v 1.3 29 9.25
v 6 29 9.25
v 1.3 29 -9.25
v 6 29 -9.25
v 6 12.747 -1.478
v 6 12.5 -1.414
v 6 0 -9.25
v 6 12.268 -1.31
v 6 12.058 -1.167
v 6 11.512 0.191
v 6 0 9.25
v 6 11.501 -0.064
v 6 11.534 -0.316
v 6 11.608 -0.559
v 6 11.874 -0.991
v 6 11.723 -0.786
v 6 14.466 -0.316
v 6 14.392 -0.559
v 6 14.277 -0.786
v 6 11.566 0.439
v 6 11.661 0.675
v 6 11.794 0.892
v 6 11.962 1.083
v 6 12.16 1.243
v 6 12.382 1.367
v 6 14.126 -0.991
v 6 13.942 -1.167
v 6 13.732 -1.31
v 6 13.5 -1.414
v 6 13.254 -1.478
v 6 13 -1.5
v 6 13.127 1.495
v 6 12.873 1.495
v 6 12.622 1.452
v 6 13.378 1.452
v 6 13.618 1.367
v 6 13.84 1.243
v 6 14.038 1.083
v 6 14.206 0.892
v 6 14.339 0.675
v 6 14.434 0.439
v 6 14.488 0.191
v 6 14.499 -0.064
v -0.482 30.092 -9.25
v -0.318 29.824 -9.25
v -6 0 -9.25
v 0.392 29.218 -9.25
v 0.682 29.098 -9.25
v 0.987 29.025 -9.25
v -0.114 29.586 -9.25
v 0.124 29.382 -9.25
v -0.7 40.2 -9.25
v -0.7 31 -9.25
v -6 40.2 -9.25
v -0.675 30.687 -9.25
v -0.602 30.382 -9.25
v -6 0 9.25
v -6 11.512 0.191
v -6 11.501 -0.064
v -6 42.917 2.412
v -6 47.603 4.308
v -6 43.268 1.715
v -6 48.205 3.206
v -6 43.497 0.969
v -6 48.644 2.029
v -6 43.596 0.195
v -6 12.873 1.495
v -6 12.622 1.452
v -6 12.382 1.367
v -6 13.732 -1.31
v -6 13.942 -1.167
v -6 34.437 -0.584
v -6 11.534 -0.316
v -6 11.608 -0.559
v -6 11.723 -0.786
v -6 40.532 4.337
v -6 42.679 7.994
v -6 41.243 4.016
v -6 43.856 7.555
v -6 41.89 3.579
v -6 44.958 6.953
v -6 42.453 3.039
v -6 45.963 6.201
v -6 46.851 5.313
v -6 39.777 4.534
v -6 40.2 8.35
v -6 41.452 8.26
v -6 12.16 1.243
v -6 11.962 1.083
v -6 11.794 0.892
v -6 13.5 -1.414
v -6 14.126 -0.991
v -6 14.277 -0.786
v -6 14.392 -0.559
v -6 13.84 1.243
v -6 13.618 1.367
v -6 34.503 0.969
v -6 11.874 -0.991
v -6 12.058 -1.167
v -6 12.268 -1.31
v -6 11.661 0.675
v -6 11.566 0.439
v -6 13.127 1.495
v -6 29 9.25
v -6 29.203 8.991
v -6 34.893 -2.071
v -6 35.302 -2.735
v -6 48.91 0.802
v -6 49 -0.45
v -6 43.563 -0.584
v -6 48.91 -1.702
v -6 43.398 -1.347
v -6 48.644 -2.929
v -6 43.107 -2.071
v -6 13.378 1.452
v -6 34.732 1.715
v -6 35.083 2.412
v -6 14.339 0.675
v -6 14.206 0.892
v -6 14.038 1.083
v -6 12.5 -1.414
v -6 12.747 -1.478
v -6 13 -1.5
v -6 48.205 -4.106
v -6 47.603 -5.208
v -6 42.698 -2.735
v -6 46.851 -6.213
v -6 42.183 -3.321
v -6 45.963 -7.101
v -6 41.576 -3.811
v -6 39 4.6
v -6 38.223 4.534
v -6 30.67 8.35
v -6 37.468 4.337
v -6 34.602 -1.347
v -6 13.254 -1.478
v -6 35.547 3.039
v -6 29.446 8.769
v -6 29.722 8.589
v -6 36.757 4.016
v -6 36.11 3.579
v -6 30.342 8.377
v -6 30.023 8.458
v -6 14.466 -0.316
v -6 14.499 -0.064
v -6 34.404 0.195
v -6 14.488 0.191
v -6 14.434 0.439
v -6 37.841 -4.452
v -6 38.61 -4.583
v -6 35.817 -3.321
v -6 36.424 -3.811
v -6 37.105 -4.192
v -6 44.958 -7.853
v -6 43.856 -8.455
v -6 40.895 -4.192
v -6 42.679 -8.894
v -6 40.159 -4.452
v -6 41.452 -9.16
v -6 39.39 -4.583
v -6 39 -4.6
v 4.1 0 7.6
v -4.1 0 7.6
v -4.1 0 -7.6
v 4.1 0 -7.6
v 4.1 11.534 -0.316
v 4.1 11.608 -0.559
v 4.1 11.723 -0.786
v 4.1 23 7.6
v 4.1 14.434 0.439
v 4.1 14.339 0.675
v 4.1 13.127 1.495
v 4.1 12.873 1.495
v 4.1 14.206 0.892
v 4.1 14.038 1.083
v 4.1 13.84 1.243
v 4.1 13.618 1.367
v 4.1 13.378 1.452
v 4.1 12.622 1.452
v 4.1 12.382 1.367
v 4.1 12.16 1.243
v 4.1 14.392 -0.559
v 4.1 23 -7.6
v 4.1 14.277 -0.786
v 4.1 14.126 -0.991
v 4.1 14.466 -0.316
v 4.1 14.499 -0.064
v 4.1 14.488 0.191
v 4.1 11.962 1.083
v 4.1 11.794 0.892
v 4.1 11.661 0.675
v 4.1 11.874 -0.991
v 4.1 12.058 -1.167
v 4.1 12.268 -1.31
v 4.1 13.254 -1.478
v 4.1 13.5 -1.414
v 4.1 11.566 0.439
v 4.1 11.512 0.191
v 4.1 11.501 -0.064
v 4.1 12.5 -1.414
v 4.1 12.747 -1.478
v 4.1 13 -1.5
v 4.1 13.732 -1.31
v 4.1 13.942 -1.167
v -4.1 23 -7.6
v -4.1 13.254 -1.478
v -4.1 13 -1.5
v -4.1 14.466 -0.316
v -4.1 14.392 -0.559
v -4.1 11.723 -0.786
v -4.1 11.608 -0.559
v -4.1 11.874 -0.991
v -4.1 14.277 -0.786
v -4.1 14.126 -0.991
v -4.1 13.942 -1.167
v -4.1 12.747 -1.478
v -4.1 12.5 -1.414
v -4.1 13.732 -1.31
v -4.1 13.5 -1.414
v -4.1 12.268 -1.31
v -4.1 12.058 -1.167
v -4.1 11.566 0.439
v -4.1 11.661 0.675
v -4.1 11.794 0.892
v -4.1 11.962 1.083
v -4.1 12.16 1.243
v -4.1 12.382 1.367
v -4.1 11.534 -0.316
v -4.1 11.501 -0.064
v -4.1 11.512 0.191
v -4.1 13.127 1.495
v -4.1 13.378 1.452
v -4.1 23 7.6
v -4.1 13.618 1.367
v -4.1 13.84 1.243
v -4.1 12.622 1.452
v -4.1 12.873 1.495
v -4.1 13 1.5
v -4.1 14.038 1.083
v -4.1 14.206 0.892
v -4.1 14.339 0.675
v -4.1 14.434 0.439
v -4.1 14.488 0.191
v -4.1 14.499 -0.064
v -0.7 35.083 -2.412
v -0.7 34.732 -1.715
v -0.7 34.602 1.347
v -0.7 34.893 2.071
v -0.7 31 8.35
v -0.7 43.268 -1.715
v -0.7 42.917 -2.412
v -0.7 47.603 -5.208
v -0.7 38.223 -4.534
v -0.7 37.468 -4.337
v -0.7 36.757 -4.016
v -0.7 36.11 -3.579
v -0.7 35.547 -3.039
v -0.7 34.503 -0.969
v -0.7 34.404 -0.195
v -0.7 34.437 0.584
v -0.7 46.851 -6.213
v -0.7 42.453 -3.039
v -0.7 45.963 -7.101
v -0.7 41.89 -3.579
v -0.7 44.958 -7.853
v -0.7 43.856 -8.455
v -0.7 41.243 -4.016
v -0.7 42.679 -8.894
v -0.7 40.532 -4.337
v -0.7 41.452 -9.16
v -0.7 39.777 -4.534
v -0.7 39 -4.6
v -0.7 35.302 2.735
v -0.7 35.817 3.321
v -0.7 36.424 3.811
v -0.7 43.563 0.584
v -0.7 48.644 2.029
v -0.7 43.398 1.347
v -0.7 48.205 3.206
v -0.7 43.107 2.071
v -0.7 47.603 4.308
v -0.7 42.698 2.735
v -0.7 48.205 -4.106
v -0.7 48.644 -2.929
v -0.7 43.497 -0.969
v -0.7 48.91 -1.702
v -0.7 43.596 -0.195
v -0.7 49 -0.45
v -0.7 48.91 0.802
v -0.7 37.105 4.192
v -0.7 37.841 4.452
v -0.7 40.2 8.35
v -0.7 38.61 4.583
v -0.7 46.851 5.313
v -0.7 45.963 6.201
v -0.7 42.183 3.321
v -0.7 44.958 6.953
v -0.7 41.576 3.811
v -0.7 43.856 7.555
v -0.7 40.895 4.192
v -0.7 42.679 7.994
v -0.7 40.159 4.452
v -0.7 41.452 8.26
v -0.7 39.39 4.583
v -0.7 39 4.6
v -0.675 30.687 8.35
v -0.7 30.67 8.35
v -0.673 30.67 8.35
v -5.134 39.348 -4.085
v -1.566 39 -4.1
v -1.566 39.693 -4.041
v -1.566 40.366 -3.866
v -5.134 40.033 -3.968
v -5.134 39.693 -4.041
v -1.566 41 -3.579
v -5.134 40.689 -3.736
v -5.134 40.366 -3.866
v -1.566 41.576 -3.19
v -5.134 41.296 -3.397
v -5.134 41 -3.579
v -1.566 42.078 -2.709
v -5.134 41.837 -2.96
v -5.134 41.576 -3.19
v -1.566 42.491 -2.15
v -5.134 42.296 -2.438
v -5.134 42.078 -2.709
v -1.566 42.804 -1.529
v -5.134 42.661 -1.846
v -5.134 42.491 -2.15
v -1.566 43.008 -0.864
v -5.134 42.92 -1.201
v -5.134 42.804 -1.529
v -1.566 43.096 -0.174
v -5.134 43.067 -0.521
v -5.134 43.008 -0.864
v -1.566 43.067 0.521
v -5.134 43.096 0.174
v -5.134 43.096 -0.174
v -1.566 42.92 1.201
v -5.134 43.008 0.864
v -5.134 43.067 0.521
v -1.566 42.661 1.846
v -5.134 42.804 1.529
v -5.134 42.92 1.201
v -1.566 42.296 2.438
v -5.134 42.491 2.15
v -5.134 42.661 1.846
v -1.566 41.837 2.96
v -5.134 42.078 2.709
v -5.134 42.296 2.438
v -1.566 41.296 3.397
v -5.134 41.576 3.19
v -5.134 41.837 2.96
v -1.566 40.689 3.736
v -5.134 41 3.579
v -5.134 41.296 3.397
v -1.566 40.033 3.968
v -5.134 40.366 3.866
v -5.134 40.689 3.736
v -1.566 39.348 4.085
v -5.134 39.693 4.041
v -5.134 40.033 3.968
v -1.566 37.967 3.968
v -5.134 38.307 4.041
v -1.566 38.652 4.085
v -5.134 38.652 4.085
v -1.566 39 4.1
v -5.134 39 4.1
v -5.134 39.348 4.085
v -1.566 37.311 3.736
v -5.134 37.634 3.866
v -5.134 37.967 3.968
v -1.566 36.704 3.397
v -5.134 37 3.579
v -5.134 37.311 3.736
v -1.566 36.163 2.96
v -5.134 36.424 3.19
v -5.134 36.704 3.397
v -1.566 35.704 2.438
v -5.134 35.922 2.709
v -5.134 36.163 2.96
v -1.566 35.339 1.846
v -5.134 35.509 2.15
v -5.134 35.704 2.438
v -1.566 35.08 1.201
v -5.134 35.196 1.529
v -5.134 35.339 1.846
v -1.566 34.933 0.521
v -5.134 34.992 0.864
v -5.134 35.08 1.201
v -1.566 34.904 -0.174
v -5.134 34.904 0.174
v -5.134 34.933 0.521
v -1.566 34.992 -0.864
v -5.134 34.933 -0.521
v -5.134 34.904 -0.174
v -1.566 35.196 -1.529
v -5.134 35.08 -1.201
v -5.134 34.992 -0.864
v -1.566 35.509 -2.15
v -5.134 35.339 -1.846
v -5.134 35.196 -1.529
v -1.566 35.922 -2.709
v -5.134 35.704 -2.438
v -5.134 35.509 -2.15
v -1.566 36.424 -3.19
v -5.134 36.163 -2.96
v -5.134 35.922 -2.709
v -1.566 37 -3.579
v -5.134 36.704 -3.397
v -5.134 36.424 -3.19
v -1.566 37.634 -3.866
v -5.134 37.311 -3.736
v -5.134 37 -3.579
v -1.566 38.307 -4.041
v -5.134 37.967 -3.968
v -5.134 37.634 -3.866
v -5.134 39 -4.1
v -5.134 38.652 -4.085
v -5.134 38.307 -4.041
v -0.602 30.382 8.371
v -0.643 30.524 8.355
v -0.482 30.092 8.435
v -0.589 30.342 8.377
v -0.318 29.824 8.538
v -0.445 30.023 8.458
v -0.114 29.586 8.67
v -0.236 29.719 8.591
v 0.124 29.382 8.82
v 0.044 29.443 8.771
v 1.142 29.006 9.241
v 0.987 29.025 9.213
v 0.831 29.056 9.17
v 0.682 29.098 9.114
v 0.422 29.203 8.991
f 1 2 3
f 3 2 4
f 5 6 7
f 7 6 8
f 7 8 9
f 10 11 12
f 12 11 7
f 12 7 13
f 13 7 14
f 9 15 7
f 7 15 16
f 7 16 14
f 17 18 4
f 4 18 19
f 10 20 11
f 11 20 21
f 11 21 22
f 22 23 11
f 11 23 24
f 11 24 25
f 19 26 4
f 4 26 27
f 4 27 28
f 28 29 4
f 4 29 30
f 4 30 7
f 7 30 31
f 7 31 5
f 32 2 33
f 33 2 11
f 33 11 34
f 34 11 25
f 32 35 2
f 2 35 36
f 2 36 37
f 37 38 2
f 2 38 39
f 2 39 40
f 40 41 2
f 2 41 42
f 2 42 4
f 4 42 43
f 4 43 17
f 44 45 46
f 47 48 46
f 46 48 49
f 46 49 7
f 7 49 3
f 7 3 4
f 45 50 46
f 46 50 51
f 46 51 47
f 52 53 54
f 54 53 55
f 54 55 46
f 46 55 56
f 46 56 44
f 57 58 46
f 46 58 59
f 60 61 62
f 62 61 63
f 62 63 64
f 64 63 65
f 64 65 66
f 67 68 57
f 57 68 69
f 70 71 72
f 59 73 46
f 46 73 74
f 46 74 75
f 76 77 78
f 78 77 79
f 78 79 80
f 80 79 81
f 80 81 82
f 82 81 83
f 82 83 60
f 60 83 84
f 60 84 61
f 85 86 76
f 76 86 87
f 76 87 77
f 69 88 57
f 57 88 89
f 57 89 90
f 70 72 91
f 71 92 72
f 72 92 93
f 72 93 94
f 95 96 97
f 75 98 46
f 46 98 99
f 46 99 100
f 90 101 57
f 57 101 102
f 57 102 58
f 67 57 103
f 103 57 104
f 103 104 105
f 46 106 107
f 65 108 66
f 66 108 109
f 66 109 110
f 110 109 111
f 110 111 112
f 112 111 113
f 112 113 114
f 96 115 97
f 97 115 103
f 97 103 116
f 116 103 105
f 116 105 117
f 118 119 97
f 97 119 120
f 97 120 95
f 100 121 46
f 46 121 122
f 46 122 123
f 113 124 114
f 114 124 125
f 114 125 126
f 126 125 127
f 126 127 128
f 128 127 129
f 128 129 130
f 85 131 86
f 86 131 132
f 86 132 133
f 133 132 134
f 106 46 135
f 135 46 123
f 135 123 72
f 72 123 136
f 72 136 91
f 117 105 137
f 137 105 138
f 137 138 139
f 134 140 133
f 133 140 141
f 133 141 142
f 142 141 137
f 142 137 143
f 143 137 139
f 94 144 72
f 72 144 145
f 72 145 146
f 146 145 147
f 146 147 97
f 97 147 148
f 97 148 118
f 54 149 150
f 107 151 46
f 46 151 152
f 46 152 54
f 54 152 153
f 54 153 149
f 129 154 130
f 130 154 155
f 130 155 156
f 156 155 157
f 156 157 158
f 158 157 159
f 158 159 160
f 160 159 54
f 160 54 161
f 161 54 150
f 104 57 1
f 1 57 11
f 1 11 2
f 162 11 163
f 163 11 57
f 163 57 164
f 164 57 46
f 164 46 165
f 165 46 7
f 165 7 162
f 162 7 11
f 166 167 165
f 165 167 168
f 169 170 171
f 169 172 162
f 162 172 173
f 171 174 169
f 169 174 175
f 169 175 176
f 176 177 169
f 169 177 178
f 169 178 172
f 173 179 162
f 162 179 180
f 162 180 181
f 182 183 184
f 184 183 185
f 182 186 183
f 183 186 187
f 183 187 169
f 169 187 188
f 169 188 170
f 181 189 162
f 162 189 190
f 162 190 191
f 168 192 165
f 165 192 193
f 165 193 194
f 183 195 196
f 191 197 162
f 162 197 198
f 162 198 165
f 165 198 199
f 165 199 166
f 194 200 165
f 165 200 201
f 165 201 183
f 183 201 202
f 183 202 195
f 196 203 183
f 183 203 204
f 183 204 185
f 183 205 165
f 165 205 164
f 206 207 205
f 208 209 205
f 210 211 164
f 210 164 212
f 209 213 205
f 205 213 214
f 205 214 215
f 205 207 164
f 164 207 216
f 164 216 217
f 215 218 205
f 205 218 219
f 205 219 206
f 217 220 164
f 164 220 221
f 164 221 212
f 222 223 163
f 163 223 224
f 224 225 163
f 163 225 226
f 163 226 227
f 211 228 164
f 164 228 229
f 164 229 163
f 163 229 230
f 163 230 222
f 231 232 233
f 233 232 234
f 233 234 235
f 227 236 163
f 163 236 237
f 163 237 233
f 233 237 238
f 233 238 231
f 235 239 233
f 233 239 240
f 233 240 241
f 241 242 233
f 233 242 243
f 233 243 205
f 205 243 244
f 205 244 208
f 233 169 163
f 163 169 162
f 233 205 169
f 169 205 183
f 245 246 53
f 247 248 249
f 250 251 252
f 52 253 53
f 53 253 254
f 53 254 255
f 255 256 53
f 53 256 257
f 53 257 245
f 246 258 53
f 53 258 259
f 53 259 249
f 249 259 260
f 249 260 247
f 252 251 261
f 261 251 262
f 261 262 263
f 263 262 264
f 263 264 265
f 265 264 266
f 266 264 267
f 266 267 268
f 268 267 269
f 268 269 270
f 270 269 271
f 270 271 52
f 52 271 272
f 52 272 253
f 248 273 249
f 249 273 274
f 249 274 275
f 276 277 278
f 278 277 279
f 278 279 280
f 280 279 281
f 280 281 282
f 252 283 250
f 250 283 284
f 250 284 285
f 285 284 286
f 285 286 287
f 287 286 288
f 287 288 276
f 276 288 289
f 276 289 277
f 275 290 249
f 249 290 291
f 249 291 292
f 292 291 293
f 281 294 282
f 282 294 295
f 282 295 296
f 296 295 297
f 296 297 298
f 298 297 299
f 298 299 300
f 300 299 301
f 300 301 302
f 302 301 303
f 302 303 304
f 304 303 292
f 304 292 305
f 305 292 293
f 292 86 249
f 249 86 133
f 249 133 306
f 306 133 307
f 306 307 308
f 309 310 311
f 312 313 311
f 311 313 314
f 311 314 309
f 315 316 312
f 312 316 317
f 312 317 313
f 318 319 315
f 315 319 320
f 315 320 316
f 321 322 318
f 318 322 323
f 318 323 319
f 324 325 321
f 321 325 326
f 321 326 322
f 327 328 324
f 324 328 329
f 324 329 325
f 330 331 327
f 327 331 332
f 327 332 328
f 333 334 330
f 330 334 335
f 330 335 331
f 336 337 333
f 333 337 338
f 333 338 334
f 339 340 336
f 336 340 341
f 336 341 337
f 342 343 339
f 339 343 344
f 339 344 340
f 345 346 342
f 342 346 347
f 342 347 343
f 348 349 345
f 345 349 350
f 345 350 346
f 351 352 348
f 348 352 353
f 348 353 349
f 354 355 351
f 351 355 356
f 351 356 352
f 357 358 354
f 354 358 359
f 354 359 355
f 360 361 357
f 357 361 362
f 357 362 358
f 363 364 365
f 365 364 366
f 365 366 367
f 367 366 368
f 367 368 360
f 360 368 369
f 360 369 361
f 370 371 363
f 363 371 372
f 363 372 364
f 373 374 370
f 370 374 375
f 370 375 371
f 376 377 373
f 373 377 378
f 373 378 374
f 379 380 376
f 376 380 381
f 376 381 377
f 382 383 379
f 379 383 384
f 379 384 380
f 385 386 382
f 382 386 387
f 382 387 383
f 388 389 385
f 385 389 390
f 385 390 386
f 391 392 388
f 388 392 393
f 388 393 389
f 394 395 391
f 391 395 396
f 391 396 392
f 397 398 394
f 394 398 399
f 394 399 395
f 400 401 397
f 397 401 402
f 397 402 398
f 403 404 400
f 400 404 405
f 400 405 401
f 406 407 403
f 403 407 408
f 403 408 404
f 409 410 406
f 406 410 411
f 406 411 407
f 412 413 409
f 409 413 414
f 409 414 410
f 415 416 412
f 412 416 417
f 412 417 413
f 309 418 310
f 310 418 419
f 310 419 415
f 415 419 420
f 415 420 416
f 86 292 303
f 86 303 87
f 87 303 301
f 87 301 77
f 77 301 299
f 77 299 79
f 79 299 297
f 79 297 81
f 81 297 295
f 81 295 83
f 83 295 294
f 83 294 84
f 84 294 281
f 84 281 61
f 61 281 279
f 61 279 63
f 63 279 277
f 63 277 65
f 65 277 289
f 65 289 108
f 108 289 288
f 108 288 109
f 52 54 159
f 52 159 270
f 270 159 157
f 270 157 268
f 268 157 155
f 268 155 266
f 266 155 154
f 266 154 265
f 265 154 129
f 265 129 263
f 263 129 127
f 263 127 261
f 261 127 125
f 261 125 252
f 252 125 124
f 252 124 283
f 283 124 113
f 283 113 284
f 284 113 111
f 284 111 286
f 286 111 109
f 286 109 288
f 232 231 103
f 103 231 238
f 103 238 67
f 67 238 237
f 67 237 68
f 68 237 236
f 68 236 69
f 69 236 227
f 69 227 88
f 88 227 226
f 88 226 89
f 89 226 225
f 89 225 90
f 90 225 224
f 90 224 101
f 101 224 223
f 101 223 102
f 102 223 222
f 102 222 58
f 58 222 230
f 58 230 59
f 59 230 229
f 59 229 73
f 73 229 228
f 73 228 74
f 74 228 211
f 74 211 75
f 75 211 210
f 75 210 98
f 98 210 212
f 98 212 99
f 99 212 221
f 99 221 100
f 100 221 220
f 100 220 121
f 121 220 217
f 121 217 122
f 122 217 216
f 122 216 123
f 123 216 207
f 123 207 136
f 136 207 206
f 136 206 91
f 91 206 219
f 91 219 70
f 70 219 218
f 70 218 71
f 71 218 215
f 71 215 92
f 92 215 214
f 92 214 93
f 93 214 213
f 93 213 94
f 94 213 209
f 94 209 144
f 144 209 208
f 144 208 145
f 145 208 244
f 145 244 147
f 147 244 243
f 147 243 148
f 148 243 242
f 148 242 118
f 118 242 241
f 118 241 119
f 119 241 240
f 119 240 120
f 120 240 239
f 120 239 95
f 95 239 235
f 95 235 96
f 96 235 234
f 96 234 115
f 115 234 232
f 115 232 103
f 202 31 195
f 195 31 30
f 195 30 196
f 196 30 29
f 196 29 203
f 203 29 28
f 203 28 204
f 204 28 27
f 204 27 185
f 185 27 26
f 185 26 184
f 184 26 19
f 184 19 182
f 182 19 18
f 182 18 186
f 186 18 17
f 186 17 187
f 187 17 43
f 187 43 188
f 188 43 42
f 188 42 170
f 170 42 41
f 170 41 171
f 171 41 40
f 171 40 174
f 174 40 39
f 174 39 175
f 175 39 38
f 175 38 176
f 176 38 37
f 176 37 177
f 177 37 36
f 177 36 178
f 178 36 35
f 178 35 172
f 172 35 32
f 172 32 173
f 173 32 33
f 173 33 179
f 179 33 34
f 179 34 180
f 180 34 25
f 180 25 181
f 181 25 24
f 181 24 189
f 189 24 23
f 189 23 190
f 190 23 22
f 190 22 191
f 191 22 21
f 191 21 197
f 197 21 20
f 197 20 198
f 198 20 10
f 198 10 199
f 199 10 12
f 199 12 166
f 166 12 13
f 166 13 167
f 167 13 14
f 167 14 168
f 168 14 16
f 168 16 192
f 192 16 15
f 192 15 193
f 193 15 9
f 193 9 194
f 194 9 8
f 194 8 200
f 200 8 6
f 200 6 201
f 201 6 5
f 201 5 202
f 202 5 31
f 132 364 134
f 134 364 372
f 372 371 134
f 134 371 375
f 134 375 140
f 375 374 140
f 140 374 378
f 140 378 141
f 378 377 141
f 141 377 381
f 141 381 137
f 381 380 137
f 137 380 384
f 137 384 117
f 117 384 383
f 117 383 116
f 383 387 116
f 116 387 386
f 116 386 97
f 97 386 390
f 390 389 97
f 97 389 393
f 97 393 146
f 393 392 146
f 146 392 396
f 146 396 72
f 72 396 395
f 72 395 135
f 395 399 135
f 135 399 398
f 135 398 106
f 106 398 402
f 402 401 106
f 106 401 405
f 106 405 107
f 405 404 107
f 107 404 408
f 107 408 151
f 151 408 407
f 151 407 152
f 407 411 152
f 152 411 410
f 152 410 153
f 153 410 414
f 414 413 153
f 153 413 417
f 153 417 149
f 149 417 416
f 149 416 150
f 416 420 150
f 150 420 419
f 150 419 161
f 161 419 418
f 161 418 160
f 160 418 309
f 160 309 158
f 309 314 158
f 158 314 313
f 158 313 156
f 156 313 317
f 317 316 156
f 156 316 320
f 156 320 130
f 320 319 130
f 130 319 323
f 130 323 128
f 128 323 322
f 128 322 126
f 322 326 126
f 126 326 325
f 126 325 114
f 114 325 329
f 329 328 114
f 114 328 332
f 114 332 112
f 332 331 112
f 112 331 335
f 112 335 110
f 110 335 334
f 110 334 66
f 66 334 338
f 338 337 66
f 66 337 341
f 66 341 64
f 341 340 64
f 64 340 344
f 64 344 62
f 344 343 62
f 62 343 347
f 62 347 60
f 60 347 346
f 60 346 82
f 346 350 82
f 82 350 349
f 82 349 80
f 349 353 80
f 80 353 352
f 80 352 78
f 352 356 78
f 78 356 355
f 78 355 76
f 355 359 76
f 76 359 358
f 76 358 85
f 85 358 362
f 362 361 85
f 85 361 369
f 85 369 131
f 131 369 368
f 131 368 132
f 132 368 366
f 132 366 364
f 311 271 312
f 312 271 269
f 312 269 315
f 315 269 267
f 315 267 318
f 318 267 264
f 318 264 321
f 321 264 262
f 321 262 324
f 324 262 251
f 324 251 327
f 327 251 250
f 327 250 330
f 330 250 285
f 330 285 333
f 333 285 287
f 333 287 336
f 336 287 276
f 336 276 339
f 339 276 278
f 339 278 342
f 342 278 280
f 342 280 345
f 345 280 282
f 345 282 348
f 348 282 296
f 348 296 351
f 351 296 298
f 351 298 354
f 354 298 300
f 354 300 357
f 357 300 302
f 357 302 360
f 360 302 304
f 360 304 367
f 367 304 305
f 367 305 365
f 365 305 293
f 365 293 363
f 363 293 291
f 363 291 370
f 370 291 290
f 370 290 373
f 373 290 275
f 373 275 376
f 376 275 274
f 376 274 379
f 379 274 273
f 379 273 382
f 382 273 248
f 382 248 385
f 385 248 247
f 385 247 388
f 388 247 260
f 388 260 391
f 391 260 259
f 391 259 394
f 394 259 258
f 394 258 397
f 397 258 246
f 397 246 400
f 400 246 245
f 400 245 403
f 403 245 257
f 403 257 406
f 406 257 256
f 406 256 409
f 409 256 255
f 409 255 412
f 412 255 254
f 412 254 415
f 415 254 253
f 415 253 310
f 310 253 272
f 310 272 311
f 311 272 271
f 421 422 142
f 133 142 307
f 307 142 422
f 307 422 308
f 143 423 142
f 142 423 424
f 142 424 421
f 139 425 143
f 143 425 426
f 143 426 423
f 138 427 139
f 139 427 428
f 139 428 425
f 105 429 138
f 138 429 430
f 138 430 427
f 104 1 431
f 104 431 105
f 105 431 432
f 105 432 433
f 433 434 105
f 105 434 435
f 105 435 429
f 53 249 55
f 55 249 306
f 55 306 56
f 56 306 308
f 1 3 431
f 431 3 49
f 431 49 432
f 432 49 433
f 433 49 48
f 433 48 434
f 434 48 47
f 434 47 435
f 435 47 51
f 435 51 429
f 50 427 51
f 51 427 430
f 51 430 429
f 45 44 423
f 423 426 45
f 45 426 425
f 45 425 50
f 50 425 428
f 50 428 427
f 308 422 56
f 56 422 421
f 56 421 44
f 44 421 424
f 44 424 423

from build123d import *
from OCP.BRepFilletAPI import BRepFilletAPI_MakeChamfer

# Parameters (mm, degrees)
SKETCH1_W           = 12
SKETCH1_H           = 18.5
BOSS_EXTRUDE1_DEPTH = 29
SKETCH2_W           = 8.2
SKETCH2_H           = 15.2
CUT_EXTRUDE1_DEPTH  = 23
SKETCH4_W           = 5.3
SKETCH4_H           = 17.6
BOSS_EXTRUDE2_DEPTH = 20
CUT_EXTRUDE2_REACH  = 52.314
SKETCH5_R           = 4.1
FILLET1_R           = 8.8
SKETCH6_R           = 1.5
CUT_EXTRUDE3_DEPTH  = 52.289009544
CHAMFER1_SIZE       = 0.5
CHAMFER1_SIZE2      = 0.866025404
FILLET6_R           = 2


# Some blends are built 0.0001 mm under size
with BuildPart() as part:
    # Sketch1 → Boss-Extrude1 (new body)
    with BuildSketch(Plane(origin=(0, 0, 0), x_dir=(1, 0, 0), z_dir=(0, 1, 0))):
        Rectangle(SKETCH1_W, SKETCH1_H)
    extrude(amount=BOSS_EXTRUDE1_DEPTH)

    # Sketch2 → Cut-Extrude1 (cut)
    with BuildSketch(Plane.XZ):
        Rectangle(SKETCH2_W, SKETCH2_H)
    extrude(amount=-CUT_EXTRUDE1_DEPTH, mode=Mode.SUBTRACT)

    # Sketch4 → Boss-Extrude2 (add)
    with BuildSketch(Plane(origin=(0, 29, 0), x_dir=(1, 0, 0), z_dir=(0, 1, 0))):
        with Locations((-3.35, 0.45)):
            Rectangle(SKETCH4_W, SKETCH4_H)
    extrude(amount=BOSS_EXTRUDE2_DEPTH)

    # Sketch5 → Cut-Extrude2 (cut, up to next)
    with BuildSketch(Plane(origin=(-0.7, 0, 0), x_dir=(0, 0, -1), z_dir=(1, 0, 0)), mode=Mode.PRIVATE) as cut_extrude2_sk1:
        with Locations((0, 39)):
            Circle(SKETCH5_R)
    cut_extrude2_tool1 = extrude(cut_extrude2_sk1.sketch, amount=-CUT_EXTRUDE2_REACH, mode=Mode.PRIVATE) & part.part
    add(cut_extrude2_tool1.solids().sort_by_distance((-0.7, 39, 0))[0], mode=Mode.SUBTRACT)

    # Fillet1
    fillet1_edges = [part.edges().sort_by_distance(p)[0] for p in [
        (-3.35, 49, -9.25),
        (-3.35, 49, 8.35),
    ]]
    fillet(fillet1_edges, radius=FILLET1_R - 0.0001)  # a hair under: the kernel refuses the full size

    # Sketch6 → Cut-Extrude3 (cut, through all)
    with BuildSketch(Plane(origin=(6, 0, 0), x_dir=(0, 0, -1), z_dir=(1, 0, 0))):
        with Locations((0, 13)):
            Circle(SKETCH6_R)
    extrude(amount=-CUT_EXTRUDE3_DEPTH, mode=Mode.SUBTRACT)

    # Chamfer1: one chamfer whose edges measure the first distance from different faces: ONE call of the kernel's chamfer builder (chamfer() names one face for all edges)
    chamfer1_edges_1 = [part.edges().sort_by_distance(p)[0] for p in [
        (-0.7, 39, 4.1),
    ]]
    chamfer1_side_1 = [part.faces().sort_by_distance(p)[0] for p in [
        (-0.7, 34.60005, 8.083586787),
    ]]
    chamfer1_edges_2 = [part.edges().sort_by_distance(p)[0] for p in [
        (-6, 39, 4.1),
    ]]
    chamfer1_side_2 = [part.faces().sort_by_distance(p)[0] for p in [
        (-6, 22.369672876, -0.180344797),
    ]]
    chamfer1 = BRepFilletAPI_MakeChamfer(part.part.solid().wrapped)
    for e in chamfer1_edges_1:
        chamfer1.Add(CHAMFER1_SIZE, CHAMFER1_SIZE2, e.wrapped, chamfer1_side_1[0].wrapped)  # the first distance lies on this face
    for e in chamfer1_edges_2:
        chamfer1.Add(CHAMFER1_SIZE, CHAMFER1_SIZE2, e.wrapped, chamfer1_side_2[0].wrapped)  # the first distance lies on this face
    add(Compound.cast(chamfer1.Shape()), mode=Mode.REPLACE)

    # Fillet6
    # the kernel refuses this fillet: 2 mm, written as the material it adds along each edge
    with BuildSketch(Plane(origin=(-0.7, 29, 8.35), x_dir=(1, 0, 0), z_dir=(0, 0, -1))) as fillet6_piece_1:
        with BuildLine():
            CenterArc((FILLET6_R, -FILLET6_R), FILLET6_R, 90, 90)
            Line((0, -FILLET6_R), (-FILLET6_R * 0.02, -FILLET6_R))
            Line((-FILLET6_R * 0.02, -FILLET6_R), (-FILLET6_R * 0.02, FILLET6_R * 0.02))
            Line((-FILLET6_R * 0.02, FILLET6_R * 0.02), (FILLET6_R, FILLET6_R * 0.02))
            Line((FILLET6_R, FILLET6_R * 0.02), (FILLET6_R, 0))
        make_face()
    extrude(amount=17.6)
    with BuildSketch(Plane(origin=(-6, 29, 8.35), x_dir=(0, 1.5316143415257847e-12, 1.0), z_dir=(1, 0, 0))) as fillet6_piece_2:
        with BuildLine():
            CenterArc((2, -1.670329309), FILLET6_R, 123.367012969, 56.632987031)
            Line((0, -1.670329309), (-0.04, -1.670329309))
            Line((-0.04, -1.670329309), (-0.04, 0))
            Line((-0.04, 0), (0, 0.04))
            ThreePointArc((0, 0.04), (0.45, 0.04), (0.878, 0.033406586))
            Line((0.878, 0.033406586), (0.9, 0))
        make_face()
    extrude(amount=5.3)
    with BuildSketch(Plane(origin=(-6, 29, 8.35), x_dir=(0, 1.5316143415257847e-12, 1.0), z_dir=(1, 0, 0))) as fillet6_piece_3a_section:
        with BuildLine():
            CenterArc((2, -1.670329309), FILLET6_R, 123.367012969, 56.632987031)
            Line((0, -1.670329309), (-0.04, -1.670329309))
            Line((-0.04, -1.670329309), (-0.04, 0))
            Line((-0.04, 0), (0, 0.04))
            ThreePointArc((0, 0.04), (0.45, 0.04), (0.878, 0.033406586))
            Line((0.878, 0.033406586), (0.9, 0))
        make_face()
    fillet6_piece_3a = extrude(amount=9.475823272, mode=Mode.PRIVATE)
    fillet6_piece_3a = split(fillet6_piece_3a, bisect_by=Plane(origin=(-0.7, 29.423174299, 8.582221018), z_dir=(1, 0, 0)), keep=Keep.TOP, mode=Mode.PRIVATE)
    with BuildSketch(Plane(origin=(-0.7, 29, 13.35), x_dir=(1, 0, 0), z_dir=(0, 0, -1))) as fillet6_piece_3b_section:
        with BuildLine():
            CenterArc((FILLET6_R, -FILLET6_R), FILLET6_R, 90, 90)
            Line((0, -FILLET6_R), (-FILLET6_R * 0.02, -FILLET6_R))
            Line((-FILLET6_R * 0.02, -FILLET6_R), (-FILLET6_R * 0.02, FILLET6_R * 0.02))
            Line((-FILLET6_R * 0.02, FILLET6_R * 0.02), (FILLET6_R, FILLET6_R * 0.02))
            Line((FILLET6_R, FILLET6_R * 0.02), (FILLET6_R, 0))
        make_face()
    fillet6_piece_3b = extrude(amount=22.6, mode=Mode.PRIVATE)
    fillet6_piece_3b = split(fillet6_piece_3b, bisect_by=Plane(origin=(-0.247209771, 29.452790229, 9.25), z_dir=(0, 0, -1)), keep=Keep.TOP, mode=Mode.PRIVATE)
    fillet6_piece_3b = split(fillet6_piece_3b, bisect_by=Plane(origin=(-0.247209771, 29.452790229, 8.35), z_dir=(0, 0, 1)), keep=Keep.TOP, mode=Mode.PRIVATE)
    fillet6_piece_3 = fillet6_piece_3a & fillet6_piece_3b
    add(fillet6_piece_3)


solid = part.part
